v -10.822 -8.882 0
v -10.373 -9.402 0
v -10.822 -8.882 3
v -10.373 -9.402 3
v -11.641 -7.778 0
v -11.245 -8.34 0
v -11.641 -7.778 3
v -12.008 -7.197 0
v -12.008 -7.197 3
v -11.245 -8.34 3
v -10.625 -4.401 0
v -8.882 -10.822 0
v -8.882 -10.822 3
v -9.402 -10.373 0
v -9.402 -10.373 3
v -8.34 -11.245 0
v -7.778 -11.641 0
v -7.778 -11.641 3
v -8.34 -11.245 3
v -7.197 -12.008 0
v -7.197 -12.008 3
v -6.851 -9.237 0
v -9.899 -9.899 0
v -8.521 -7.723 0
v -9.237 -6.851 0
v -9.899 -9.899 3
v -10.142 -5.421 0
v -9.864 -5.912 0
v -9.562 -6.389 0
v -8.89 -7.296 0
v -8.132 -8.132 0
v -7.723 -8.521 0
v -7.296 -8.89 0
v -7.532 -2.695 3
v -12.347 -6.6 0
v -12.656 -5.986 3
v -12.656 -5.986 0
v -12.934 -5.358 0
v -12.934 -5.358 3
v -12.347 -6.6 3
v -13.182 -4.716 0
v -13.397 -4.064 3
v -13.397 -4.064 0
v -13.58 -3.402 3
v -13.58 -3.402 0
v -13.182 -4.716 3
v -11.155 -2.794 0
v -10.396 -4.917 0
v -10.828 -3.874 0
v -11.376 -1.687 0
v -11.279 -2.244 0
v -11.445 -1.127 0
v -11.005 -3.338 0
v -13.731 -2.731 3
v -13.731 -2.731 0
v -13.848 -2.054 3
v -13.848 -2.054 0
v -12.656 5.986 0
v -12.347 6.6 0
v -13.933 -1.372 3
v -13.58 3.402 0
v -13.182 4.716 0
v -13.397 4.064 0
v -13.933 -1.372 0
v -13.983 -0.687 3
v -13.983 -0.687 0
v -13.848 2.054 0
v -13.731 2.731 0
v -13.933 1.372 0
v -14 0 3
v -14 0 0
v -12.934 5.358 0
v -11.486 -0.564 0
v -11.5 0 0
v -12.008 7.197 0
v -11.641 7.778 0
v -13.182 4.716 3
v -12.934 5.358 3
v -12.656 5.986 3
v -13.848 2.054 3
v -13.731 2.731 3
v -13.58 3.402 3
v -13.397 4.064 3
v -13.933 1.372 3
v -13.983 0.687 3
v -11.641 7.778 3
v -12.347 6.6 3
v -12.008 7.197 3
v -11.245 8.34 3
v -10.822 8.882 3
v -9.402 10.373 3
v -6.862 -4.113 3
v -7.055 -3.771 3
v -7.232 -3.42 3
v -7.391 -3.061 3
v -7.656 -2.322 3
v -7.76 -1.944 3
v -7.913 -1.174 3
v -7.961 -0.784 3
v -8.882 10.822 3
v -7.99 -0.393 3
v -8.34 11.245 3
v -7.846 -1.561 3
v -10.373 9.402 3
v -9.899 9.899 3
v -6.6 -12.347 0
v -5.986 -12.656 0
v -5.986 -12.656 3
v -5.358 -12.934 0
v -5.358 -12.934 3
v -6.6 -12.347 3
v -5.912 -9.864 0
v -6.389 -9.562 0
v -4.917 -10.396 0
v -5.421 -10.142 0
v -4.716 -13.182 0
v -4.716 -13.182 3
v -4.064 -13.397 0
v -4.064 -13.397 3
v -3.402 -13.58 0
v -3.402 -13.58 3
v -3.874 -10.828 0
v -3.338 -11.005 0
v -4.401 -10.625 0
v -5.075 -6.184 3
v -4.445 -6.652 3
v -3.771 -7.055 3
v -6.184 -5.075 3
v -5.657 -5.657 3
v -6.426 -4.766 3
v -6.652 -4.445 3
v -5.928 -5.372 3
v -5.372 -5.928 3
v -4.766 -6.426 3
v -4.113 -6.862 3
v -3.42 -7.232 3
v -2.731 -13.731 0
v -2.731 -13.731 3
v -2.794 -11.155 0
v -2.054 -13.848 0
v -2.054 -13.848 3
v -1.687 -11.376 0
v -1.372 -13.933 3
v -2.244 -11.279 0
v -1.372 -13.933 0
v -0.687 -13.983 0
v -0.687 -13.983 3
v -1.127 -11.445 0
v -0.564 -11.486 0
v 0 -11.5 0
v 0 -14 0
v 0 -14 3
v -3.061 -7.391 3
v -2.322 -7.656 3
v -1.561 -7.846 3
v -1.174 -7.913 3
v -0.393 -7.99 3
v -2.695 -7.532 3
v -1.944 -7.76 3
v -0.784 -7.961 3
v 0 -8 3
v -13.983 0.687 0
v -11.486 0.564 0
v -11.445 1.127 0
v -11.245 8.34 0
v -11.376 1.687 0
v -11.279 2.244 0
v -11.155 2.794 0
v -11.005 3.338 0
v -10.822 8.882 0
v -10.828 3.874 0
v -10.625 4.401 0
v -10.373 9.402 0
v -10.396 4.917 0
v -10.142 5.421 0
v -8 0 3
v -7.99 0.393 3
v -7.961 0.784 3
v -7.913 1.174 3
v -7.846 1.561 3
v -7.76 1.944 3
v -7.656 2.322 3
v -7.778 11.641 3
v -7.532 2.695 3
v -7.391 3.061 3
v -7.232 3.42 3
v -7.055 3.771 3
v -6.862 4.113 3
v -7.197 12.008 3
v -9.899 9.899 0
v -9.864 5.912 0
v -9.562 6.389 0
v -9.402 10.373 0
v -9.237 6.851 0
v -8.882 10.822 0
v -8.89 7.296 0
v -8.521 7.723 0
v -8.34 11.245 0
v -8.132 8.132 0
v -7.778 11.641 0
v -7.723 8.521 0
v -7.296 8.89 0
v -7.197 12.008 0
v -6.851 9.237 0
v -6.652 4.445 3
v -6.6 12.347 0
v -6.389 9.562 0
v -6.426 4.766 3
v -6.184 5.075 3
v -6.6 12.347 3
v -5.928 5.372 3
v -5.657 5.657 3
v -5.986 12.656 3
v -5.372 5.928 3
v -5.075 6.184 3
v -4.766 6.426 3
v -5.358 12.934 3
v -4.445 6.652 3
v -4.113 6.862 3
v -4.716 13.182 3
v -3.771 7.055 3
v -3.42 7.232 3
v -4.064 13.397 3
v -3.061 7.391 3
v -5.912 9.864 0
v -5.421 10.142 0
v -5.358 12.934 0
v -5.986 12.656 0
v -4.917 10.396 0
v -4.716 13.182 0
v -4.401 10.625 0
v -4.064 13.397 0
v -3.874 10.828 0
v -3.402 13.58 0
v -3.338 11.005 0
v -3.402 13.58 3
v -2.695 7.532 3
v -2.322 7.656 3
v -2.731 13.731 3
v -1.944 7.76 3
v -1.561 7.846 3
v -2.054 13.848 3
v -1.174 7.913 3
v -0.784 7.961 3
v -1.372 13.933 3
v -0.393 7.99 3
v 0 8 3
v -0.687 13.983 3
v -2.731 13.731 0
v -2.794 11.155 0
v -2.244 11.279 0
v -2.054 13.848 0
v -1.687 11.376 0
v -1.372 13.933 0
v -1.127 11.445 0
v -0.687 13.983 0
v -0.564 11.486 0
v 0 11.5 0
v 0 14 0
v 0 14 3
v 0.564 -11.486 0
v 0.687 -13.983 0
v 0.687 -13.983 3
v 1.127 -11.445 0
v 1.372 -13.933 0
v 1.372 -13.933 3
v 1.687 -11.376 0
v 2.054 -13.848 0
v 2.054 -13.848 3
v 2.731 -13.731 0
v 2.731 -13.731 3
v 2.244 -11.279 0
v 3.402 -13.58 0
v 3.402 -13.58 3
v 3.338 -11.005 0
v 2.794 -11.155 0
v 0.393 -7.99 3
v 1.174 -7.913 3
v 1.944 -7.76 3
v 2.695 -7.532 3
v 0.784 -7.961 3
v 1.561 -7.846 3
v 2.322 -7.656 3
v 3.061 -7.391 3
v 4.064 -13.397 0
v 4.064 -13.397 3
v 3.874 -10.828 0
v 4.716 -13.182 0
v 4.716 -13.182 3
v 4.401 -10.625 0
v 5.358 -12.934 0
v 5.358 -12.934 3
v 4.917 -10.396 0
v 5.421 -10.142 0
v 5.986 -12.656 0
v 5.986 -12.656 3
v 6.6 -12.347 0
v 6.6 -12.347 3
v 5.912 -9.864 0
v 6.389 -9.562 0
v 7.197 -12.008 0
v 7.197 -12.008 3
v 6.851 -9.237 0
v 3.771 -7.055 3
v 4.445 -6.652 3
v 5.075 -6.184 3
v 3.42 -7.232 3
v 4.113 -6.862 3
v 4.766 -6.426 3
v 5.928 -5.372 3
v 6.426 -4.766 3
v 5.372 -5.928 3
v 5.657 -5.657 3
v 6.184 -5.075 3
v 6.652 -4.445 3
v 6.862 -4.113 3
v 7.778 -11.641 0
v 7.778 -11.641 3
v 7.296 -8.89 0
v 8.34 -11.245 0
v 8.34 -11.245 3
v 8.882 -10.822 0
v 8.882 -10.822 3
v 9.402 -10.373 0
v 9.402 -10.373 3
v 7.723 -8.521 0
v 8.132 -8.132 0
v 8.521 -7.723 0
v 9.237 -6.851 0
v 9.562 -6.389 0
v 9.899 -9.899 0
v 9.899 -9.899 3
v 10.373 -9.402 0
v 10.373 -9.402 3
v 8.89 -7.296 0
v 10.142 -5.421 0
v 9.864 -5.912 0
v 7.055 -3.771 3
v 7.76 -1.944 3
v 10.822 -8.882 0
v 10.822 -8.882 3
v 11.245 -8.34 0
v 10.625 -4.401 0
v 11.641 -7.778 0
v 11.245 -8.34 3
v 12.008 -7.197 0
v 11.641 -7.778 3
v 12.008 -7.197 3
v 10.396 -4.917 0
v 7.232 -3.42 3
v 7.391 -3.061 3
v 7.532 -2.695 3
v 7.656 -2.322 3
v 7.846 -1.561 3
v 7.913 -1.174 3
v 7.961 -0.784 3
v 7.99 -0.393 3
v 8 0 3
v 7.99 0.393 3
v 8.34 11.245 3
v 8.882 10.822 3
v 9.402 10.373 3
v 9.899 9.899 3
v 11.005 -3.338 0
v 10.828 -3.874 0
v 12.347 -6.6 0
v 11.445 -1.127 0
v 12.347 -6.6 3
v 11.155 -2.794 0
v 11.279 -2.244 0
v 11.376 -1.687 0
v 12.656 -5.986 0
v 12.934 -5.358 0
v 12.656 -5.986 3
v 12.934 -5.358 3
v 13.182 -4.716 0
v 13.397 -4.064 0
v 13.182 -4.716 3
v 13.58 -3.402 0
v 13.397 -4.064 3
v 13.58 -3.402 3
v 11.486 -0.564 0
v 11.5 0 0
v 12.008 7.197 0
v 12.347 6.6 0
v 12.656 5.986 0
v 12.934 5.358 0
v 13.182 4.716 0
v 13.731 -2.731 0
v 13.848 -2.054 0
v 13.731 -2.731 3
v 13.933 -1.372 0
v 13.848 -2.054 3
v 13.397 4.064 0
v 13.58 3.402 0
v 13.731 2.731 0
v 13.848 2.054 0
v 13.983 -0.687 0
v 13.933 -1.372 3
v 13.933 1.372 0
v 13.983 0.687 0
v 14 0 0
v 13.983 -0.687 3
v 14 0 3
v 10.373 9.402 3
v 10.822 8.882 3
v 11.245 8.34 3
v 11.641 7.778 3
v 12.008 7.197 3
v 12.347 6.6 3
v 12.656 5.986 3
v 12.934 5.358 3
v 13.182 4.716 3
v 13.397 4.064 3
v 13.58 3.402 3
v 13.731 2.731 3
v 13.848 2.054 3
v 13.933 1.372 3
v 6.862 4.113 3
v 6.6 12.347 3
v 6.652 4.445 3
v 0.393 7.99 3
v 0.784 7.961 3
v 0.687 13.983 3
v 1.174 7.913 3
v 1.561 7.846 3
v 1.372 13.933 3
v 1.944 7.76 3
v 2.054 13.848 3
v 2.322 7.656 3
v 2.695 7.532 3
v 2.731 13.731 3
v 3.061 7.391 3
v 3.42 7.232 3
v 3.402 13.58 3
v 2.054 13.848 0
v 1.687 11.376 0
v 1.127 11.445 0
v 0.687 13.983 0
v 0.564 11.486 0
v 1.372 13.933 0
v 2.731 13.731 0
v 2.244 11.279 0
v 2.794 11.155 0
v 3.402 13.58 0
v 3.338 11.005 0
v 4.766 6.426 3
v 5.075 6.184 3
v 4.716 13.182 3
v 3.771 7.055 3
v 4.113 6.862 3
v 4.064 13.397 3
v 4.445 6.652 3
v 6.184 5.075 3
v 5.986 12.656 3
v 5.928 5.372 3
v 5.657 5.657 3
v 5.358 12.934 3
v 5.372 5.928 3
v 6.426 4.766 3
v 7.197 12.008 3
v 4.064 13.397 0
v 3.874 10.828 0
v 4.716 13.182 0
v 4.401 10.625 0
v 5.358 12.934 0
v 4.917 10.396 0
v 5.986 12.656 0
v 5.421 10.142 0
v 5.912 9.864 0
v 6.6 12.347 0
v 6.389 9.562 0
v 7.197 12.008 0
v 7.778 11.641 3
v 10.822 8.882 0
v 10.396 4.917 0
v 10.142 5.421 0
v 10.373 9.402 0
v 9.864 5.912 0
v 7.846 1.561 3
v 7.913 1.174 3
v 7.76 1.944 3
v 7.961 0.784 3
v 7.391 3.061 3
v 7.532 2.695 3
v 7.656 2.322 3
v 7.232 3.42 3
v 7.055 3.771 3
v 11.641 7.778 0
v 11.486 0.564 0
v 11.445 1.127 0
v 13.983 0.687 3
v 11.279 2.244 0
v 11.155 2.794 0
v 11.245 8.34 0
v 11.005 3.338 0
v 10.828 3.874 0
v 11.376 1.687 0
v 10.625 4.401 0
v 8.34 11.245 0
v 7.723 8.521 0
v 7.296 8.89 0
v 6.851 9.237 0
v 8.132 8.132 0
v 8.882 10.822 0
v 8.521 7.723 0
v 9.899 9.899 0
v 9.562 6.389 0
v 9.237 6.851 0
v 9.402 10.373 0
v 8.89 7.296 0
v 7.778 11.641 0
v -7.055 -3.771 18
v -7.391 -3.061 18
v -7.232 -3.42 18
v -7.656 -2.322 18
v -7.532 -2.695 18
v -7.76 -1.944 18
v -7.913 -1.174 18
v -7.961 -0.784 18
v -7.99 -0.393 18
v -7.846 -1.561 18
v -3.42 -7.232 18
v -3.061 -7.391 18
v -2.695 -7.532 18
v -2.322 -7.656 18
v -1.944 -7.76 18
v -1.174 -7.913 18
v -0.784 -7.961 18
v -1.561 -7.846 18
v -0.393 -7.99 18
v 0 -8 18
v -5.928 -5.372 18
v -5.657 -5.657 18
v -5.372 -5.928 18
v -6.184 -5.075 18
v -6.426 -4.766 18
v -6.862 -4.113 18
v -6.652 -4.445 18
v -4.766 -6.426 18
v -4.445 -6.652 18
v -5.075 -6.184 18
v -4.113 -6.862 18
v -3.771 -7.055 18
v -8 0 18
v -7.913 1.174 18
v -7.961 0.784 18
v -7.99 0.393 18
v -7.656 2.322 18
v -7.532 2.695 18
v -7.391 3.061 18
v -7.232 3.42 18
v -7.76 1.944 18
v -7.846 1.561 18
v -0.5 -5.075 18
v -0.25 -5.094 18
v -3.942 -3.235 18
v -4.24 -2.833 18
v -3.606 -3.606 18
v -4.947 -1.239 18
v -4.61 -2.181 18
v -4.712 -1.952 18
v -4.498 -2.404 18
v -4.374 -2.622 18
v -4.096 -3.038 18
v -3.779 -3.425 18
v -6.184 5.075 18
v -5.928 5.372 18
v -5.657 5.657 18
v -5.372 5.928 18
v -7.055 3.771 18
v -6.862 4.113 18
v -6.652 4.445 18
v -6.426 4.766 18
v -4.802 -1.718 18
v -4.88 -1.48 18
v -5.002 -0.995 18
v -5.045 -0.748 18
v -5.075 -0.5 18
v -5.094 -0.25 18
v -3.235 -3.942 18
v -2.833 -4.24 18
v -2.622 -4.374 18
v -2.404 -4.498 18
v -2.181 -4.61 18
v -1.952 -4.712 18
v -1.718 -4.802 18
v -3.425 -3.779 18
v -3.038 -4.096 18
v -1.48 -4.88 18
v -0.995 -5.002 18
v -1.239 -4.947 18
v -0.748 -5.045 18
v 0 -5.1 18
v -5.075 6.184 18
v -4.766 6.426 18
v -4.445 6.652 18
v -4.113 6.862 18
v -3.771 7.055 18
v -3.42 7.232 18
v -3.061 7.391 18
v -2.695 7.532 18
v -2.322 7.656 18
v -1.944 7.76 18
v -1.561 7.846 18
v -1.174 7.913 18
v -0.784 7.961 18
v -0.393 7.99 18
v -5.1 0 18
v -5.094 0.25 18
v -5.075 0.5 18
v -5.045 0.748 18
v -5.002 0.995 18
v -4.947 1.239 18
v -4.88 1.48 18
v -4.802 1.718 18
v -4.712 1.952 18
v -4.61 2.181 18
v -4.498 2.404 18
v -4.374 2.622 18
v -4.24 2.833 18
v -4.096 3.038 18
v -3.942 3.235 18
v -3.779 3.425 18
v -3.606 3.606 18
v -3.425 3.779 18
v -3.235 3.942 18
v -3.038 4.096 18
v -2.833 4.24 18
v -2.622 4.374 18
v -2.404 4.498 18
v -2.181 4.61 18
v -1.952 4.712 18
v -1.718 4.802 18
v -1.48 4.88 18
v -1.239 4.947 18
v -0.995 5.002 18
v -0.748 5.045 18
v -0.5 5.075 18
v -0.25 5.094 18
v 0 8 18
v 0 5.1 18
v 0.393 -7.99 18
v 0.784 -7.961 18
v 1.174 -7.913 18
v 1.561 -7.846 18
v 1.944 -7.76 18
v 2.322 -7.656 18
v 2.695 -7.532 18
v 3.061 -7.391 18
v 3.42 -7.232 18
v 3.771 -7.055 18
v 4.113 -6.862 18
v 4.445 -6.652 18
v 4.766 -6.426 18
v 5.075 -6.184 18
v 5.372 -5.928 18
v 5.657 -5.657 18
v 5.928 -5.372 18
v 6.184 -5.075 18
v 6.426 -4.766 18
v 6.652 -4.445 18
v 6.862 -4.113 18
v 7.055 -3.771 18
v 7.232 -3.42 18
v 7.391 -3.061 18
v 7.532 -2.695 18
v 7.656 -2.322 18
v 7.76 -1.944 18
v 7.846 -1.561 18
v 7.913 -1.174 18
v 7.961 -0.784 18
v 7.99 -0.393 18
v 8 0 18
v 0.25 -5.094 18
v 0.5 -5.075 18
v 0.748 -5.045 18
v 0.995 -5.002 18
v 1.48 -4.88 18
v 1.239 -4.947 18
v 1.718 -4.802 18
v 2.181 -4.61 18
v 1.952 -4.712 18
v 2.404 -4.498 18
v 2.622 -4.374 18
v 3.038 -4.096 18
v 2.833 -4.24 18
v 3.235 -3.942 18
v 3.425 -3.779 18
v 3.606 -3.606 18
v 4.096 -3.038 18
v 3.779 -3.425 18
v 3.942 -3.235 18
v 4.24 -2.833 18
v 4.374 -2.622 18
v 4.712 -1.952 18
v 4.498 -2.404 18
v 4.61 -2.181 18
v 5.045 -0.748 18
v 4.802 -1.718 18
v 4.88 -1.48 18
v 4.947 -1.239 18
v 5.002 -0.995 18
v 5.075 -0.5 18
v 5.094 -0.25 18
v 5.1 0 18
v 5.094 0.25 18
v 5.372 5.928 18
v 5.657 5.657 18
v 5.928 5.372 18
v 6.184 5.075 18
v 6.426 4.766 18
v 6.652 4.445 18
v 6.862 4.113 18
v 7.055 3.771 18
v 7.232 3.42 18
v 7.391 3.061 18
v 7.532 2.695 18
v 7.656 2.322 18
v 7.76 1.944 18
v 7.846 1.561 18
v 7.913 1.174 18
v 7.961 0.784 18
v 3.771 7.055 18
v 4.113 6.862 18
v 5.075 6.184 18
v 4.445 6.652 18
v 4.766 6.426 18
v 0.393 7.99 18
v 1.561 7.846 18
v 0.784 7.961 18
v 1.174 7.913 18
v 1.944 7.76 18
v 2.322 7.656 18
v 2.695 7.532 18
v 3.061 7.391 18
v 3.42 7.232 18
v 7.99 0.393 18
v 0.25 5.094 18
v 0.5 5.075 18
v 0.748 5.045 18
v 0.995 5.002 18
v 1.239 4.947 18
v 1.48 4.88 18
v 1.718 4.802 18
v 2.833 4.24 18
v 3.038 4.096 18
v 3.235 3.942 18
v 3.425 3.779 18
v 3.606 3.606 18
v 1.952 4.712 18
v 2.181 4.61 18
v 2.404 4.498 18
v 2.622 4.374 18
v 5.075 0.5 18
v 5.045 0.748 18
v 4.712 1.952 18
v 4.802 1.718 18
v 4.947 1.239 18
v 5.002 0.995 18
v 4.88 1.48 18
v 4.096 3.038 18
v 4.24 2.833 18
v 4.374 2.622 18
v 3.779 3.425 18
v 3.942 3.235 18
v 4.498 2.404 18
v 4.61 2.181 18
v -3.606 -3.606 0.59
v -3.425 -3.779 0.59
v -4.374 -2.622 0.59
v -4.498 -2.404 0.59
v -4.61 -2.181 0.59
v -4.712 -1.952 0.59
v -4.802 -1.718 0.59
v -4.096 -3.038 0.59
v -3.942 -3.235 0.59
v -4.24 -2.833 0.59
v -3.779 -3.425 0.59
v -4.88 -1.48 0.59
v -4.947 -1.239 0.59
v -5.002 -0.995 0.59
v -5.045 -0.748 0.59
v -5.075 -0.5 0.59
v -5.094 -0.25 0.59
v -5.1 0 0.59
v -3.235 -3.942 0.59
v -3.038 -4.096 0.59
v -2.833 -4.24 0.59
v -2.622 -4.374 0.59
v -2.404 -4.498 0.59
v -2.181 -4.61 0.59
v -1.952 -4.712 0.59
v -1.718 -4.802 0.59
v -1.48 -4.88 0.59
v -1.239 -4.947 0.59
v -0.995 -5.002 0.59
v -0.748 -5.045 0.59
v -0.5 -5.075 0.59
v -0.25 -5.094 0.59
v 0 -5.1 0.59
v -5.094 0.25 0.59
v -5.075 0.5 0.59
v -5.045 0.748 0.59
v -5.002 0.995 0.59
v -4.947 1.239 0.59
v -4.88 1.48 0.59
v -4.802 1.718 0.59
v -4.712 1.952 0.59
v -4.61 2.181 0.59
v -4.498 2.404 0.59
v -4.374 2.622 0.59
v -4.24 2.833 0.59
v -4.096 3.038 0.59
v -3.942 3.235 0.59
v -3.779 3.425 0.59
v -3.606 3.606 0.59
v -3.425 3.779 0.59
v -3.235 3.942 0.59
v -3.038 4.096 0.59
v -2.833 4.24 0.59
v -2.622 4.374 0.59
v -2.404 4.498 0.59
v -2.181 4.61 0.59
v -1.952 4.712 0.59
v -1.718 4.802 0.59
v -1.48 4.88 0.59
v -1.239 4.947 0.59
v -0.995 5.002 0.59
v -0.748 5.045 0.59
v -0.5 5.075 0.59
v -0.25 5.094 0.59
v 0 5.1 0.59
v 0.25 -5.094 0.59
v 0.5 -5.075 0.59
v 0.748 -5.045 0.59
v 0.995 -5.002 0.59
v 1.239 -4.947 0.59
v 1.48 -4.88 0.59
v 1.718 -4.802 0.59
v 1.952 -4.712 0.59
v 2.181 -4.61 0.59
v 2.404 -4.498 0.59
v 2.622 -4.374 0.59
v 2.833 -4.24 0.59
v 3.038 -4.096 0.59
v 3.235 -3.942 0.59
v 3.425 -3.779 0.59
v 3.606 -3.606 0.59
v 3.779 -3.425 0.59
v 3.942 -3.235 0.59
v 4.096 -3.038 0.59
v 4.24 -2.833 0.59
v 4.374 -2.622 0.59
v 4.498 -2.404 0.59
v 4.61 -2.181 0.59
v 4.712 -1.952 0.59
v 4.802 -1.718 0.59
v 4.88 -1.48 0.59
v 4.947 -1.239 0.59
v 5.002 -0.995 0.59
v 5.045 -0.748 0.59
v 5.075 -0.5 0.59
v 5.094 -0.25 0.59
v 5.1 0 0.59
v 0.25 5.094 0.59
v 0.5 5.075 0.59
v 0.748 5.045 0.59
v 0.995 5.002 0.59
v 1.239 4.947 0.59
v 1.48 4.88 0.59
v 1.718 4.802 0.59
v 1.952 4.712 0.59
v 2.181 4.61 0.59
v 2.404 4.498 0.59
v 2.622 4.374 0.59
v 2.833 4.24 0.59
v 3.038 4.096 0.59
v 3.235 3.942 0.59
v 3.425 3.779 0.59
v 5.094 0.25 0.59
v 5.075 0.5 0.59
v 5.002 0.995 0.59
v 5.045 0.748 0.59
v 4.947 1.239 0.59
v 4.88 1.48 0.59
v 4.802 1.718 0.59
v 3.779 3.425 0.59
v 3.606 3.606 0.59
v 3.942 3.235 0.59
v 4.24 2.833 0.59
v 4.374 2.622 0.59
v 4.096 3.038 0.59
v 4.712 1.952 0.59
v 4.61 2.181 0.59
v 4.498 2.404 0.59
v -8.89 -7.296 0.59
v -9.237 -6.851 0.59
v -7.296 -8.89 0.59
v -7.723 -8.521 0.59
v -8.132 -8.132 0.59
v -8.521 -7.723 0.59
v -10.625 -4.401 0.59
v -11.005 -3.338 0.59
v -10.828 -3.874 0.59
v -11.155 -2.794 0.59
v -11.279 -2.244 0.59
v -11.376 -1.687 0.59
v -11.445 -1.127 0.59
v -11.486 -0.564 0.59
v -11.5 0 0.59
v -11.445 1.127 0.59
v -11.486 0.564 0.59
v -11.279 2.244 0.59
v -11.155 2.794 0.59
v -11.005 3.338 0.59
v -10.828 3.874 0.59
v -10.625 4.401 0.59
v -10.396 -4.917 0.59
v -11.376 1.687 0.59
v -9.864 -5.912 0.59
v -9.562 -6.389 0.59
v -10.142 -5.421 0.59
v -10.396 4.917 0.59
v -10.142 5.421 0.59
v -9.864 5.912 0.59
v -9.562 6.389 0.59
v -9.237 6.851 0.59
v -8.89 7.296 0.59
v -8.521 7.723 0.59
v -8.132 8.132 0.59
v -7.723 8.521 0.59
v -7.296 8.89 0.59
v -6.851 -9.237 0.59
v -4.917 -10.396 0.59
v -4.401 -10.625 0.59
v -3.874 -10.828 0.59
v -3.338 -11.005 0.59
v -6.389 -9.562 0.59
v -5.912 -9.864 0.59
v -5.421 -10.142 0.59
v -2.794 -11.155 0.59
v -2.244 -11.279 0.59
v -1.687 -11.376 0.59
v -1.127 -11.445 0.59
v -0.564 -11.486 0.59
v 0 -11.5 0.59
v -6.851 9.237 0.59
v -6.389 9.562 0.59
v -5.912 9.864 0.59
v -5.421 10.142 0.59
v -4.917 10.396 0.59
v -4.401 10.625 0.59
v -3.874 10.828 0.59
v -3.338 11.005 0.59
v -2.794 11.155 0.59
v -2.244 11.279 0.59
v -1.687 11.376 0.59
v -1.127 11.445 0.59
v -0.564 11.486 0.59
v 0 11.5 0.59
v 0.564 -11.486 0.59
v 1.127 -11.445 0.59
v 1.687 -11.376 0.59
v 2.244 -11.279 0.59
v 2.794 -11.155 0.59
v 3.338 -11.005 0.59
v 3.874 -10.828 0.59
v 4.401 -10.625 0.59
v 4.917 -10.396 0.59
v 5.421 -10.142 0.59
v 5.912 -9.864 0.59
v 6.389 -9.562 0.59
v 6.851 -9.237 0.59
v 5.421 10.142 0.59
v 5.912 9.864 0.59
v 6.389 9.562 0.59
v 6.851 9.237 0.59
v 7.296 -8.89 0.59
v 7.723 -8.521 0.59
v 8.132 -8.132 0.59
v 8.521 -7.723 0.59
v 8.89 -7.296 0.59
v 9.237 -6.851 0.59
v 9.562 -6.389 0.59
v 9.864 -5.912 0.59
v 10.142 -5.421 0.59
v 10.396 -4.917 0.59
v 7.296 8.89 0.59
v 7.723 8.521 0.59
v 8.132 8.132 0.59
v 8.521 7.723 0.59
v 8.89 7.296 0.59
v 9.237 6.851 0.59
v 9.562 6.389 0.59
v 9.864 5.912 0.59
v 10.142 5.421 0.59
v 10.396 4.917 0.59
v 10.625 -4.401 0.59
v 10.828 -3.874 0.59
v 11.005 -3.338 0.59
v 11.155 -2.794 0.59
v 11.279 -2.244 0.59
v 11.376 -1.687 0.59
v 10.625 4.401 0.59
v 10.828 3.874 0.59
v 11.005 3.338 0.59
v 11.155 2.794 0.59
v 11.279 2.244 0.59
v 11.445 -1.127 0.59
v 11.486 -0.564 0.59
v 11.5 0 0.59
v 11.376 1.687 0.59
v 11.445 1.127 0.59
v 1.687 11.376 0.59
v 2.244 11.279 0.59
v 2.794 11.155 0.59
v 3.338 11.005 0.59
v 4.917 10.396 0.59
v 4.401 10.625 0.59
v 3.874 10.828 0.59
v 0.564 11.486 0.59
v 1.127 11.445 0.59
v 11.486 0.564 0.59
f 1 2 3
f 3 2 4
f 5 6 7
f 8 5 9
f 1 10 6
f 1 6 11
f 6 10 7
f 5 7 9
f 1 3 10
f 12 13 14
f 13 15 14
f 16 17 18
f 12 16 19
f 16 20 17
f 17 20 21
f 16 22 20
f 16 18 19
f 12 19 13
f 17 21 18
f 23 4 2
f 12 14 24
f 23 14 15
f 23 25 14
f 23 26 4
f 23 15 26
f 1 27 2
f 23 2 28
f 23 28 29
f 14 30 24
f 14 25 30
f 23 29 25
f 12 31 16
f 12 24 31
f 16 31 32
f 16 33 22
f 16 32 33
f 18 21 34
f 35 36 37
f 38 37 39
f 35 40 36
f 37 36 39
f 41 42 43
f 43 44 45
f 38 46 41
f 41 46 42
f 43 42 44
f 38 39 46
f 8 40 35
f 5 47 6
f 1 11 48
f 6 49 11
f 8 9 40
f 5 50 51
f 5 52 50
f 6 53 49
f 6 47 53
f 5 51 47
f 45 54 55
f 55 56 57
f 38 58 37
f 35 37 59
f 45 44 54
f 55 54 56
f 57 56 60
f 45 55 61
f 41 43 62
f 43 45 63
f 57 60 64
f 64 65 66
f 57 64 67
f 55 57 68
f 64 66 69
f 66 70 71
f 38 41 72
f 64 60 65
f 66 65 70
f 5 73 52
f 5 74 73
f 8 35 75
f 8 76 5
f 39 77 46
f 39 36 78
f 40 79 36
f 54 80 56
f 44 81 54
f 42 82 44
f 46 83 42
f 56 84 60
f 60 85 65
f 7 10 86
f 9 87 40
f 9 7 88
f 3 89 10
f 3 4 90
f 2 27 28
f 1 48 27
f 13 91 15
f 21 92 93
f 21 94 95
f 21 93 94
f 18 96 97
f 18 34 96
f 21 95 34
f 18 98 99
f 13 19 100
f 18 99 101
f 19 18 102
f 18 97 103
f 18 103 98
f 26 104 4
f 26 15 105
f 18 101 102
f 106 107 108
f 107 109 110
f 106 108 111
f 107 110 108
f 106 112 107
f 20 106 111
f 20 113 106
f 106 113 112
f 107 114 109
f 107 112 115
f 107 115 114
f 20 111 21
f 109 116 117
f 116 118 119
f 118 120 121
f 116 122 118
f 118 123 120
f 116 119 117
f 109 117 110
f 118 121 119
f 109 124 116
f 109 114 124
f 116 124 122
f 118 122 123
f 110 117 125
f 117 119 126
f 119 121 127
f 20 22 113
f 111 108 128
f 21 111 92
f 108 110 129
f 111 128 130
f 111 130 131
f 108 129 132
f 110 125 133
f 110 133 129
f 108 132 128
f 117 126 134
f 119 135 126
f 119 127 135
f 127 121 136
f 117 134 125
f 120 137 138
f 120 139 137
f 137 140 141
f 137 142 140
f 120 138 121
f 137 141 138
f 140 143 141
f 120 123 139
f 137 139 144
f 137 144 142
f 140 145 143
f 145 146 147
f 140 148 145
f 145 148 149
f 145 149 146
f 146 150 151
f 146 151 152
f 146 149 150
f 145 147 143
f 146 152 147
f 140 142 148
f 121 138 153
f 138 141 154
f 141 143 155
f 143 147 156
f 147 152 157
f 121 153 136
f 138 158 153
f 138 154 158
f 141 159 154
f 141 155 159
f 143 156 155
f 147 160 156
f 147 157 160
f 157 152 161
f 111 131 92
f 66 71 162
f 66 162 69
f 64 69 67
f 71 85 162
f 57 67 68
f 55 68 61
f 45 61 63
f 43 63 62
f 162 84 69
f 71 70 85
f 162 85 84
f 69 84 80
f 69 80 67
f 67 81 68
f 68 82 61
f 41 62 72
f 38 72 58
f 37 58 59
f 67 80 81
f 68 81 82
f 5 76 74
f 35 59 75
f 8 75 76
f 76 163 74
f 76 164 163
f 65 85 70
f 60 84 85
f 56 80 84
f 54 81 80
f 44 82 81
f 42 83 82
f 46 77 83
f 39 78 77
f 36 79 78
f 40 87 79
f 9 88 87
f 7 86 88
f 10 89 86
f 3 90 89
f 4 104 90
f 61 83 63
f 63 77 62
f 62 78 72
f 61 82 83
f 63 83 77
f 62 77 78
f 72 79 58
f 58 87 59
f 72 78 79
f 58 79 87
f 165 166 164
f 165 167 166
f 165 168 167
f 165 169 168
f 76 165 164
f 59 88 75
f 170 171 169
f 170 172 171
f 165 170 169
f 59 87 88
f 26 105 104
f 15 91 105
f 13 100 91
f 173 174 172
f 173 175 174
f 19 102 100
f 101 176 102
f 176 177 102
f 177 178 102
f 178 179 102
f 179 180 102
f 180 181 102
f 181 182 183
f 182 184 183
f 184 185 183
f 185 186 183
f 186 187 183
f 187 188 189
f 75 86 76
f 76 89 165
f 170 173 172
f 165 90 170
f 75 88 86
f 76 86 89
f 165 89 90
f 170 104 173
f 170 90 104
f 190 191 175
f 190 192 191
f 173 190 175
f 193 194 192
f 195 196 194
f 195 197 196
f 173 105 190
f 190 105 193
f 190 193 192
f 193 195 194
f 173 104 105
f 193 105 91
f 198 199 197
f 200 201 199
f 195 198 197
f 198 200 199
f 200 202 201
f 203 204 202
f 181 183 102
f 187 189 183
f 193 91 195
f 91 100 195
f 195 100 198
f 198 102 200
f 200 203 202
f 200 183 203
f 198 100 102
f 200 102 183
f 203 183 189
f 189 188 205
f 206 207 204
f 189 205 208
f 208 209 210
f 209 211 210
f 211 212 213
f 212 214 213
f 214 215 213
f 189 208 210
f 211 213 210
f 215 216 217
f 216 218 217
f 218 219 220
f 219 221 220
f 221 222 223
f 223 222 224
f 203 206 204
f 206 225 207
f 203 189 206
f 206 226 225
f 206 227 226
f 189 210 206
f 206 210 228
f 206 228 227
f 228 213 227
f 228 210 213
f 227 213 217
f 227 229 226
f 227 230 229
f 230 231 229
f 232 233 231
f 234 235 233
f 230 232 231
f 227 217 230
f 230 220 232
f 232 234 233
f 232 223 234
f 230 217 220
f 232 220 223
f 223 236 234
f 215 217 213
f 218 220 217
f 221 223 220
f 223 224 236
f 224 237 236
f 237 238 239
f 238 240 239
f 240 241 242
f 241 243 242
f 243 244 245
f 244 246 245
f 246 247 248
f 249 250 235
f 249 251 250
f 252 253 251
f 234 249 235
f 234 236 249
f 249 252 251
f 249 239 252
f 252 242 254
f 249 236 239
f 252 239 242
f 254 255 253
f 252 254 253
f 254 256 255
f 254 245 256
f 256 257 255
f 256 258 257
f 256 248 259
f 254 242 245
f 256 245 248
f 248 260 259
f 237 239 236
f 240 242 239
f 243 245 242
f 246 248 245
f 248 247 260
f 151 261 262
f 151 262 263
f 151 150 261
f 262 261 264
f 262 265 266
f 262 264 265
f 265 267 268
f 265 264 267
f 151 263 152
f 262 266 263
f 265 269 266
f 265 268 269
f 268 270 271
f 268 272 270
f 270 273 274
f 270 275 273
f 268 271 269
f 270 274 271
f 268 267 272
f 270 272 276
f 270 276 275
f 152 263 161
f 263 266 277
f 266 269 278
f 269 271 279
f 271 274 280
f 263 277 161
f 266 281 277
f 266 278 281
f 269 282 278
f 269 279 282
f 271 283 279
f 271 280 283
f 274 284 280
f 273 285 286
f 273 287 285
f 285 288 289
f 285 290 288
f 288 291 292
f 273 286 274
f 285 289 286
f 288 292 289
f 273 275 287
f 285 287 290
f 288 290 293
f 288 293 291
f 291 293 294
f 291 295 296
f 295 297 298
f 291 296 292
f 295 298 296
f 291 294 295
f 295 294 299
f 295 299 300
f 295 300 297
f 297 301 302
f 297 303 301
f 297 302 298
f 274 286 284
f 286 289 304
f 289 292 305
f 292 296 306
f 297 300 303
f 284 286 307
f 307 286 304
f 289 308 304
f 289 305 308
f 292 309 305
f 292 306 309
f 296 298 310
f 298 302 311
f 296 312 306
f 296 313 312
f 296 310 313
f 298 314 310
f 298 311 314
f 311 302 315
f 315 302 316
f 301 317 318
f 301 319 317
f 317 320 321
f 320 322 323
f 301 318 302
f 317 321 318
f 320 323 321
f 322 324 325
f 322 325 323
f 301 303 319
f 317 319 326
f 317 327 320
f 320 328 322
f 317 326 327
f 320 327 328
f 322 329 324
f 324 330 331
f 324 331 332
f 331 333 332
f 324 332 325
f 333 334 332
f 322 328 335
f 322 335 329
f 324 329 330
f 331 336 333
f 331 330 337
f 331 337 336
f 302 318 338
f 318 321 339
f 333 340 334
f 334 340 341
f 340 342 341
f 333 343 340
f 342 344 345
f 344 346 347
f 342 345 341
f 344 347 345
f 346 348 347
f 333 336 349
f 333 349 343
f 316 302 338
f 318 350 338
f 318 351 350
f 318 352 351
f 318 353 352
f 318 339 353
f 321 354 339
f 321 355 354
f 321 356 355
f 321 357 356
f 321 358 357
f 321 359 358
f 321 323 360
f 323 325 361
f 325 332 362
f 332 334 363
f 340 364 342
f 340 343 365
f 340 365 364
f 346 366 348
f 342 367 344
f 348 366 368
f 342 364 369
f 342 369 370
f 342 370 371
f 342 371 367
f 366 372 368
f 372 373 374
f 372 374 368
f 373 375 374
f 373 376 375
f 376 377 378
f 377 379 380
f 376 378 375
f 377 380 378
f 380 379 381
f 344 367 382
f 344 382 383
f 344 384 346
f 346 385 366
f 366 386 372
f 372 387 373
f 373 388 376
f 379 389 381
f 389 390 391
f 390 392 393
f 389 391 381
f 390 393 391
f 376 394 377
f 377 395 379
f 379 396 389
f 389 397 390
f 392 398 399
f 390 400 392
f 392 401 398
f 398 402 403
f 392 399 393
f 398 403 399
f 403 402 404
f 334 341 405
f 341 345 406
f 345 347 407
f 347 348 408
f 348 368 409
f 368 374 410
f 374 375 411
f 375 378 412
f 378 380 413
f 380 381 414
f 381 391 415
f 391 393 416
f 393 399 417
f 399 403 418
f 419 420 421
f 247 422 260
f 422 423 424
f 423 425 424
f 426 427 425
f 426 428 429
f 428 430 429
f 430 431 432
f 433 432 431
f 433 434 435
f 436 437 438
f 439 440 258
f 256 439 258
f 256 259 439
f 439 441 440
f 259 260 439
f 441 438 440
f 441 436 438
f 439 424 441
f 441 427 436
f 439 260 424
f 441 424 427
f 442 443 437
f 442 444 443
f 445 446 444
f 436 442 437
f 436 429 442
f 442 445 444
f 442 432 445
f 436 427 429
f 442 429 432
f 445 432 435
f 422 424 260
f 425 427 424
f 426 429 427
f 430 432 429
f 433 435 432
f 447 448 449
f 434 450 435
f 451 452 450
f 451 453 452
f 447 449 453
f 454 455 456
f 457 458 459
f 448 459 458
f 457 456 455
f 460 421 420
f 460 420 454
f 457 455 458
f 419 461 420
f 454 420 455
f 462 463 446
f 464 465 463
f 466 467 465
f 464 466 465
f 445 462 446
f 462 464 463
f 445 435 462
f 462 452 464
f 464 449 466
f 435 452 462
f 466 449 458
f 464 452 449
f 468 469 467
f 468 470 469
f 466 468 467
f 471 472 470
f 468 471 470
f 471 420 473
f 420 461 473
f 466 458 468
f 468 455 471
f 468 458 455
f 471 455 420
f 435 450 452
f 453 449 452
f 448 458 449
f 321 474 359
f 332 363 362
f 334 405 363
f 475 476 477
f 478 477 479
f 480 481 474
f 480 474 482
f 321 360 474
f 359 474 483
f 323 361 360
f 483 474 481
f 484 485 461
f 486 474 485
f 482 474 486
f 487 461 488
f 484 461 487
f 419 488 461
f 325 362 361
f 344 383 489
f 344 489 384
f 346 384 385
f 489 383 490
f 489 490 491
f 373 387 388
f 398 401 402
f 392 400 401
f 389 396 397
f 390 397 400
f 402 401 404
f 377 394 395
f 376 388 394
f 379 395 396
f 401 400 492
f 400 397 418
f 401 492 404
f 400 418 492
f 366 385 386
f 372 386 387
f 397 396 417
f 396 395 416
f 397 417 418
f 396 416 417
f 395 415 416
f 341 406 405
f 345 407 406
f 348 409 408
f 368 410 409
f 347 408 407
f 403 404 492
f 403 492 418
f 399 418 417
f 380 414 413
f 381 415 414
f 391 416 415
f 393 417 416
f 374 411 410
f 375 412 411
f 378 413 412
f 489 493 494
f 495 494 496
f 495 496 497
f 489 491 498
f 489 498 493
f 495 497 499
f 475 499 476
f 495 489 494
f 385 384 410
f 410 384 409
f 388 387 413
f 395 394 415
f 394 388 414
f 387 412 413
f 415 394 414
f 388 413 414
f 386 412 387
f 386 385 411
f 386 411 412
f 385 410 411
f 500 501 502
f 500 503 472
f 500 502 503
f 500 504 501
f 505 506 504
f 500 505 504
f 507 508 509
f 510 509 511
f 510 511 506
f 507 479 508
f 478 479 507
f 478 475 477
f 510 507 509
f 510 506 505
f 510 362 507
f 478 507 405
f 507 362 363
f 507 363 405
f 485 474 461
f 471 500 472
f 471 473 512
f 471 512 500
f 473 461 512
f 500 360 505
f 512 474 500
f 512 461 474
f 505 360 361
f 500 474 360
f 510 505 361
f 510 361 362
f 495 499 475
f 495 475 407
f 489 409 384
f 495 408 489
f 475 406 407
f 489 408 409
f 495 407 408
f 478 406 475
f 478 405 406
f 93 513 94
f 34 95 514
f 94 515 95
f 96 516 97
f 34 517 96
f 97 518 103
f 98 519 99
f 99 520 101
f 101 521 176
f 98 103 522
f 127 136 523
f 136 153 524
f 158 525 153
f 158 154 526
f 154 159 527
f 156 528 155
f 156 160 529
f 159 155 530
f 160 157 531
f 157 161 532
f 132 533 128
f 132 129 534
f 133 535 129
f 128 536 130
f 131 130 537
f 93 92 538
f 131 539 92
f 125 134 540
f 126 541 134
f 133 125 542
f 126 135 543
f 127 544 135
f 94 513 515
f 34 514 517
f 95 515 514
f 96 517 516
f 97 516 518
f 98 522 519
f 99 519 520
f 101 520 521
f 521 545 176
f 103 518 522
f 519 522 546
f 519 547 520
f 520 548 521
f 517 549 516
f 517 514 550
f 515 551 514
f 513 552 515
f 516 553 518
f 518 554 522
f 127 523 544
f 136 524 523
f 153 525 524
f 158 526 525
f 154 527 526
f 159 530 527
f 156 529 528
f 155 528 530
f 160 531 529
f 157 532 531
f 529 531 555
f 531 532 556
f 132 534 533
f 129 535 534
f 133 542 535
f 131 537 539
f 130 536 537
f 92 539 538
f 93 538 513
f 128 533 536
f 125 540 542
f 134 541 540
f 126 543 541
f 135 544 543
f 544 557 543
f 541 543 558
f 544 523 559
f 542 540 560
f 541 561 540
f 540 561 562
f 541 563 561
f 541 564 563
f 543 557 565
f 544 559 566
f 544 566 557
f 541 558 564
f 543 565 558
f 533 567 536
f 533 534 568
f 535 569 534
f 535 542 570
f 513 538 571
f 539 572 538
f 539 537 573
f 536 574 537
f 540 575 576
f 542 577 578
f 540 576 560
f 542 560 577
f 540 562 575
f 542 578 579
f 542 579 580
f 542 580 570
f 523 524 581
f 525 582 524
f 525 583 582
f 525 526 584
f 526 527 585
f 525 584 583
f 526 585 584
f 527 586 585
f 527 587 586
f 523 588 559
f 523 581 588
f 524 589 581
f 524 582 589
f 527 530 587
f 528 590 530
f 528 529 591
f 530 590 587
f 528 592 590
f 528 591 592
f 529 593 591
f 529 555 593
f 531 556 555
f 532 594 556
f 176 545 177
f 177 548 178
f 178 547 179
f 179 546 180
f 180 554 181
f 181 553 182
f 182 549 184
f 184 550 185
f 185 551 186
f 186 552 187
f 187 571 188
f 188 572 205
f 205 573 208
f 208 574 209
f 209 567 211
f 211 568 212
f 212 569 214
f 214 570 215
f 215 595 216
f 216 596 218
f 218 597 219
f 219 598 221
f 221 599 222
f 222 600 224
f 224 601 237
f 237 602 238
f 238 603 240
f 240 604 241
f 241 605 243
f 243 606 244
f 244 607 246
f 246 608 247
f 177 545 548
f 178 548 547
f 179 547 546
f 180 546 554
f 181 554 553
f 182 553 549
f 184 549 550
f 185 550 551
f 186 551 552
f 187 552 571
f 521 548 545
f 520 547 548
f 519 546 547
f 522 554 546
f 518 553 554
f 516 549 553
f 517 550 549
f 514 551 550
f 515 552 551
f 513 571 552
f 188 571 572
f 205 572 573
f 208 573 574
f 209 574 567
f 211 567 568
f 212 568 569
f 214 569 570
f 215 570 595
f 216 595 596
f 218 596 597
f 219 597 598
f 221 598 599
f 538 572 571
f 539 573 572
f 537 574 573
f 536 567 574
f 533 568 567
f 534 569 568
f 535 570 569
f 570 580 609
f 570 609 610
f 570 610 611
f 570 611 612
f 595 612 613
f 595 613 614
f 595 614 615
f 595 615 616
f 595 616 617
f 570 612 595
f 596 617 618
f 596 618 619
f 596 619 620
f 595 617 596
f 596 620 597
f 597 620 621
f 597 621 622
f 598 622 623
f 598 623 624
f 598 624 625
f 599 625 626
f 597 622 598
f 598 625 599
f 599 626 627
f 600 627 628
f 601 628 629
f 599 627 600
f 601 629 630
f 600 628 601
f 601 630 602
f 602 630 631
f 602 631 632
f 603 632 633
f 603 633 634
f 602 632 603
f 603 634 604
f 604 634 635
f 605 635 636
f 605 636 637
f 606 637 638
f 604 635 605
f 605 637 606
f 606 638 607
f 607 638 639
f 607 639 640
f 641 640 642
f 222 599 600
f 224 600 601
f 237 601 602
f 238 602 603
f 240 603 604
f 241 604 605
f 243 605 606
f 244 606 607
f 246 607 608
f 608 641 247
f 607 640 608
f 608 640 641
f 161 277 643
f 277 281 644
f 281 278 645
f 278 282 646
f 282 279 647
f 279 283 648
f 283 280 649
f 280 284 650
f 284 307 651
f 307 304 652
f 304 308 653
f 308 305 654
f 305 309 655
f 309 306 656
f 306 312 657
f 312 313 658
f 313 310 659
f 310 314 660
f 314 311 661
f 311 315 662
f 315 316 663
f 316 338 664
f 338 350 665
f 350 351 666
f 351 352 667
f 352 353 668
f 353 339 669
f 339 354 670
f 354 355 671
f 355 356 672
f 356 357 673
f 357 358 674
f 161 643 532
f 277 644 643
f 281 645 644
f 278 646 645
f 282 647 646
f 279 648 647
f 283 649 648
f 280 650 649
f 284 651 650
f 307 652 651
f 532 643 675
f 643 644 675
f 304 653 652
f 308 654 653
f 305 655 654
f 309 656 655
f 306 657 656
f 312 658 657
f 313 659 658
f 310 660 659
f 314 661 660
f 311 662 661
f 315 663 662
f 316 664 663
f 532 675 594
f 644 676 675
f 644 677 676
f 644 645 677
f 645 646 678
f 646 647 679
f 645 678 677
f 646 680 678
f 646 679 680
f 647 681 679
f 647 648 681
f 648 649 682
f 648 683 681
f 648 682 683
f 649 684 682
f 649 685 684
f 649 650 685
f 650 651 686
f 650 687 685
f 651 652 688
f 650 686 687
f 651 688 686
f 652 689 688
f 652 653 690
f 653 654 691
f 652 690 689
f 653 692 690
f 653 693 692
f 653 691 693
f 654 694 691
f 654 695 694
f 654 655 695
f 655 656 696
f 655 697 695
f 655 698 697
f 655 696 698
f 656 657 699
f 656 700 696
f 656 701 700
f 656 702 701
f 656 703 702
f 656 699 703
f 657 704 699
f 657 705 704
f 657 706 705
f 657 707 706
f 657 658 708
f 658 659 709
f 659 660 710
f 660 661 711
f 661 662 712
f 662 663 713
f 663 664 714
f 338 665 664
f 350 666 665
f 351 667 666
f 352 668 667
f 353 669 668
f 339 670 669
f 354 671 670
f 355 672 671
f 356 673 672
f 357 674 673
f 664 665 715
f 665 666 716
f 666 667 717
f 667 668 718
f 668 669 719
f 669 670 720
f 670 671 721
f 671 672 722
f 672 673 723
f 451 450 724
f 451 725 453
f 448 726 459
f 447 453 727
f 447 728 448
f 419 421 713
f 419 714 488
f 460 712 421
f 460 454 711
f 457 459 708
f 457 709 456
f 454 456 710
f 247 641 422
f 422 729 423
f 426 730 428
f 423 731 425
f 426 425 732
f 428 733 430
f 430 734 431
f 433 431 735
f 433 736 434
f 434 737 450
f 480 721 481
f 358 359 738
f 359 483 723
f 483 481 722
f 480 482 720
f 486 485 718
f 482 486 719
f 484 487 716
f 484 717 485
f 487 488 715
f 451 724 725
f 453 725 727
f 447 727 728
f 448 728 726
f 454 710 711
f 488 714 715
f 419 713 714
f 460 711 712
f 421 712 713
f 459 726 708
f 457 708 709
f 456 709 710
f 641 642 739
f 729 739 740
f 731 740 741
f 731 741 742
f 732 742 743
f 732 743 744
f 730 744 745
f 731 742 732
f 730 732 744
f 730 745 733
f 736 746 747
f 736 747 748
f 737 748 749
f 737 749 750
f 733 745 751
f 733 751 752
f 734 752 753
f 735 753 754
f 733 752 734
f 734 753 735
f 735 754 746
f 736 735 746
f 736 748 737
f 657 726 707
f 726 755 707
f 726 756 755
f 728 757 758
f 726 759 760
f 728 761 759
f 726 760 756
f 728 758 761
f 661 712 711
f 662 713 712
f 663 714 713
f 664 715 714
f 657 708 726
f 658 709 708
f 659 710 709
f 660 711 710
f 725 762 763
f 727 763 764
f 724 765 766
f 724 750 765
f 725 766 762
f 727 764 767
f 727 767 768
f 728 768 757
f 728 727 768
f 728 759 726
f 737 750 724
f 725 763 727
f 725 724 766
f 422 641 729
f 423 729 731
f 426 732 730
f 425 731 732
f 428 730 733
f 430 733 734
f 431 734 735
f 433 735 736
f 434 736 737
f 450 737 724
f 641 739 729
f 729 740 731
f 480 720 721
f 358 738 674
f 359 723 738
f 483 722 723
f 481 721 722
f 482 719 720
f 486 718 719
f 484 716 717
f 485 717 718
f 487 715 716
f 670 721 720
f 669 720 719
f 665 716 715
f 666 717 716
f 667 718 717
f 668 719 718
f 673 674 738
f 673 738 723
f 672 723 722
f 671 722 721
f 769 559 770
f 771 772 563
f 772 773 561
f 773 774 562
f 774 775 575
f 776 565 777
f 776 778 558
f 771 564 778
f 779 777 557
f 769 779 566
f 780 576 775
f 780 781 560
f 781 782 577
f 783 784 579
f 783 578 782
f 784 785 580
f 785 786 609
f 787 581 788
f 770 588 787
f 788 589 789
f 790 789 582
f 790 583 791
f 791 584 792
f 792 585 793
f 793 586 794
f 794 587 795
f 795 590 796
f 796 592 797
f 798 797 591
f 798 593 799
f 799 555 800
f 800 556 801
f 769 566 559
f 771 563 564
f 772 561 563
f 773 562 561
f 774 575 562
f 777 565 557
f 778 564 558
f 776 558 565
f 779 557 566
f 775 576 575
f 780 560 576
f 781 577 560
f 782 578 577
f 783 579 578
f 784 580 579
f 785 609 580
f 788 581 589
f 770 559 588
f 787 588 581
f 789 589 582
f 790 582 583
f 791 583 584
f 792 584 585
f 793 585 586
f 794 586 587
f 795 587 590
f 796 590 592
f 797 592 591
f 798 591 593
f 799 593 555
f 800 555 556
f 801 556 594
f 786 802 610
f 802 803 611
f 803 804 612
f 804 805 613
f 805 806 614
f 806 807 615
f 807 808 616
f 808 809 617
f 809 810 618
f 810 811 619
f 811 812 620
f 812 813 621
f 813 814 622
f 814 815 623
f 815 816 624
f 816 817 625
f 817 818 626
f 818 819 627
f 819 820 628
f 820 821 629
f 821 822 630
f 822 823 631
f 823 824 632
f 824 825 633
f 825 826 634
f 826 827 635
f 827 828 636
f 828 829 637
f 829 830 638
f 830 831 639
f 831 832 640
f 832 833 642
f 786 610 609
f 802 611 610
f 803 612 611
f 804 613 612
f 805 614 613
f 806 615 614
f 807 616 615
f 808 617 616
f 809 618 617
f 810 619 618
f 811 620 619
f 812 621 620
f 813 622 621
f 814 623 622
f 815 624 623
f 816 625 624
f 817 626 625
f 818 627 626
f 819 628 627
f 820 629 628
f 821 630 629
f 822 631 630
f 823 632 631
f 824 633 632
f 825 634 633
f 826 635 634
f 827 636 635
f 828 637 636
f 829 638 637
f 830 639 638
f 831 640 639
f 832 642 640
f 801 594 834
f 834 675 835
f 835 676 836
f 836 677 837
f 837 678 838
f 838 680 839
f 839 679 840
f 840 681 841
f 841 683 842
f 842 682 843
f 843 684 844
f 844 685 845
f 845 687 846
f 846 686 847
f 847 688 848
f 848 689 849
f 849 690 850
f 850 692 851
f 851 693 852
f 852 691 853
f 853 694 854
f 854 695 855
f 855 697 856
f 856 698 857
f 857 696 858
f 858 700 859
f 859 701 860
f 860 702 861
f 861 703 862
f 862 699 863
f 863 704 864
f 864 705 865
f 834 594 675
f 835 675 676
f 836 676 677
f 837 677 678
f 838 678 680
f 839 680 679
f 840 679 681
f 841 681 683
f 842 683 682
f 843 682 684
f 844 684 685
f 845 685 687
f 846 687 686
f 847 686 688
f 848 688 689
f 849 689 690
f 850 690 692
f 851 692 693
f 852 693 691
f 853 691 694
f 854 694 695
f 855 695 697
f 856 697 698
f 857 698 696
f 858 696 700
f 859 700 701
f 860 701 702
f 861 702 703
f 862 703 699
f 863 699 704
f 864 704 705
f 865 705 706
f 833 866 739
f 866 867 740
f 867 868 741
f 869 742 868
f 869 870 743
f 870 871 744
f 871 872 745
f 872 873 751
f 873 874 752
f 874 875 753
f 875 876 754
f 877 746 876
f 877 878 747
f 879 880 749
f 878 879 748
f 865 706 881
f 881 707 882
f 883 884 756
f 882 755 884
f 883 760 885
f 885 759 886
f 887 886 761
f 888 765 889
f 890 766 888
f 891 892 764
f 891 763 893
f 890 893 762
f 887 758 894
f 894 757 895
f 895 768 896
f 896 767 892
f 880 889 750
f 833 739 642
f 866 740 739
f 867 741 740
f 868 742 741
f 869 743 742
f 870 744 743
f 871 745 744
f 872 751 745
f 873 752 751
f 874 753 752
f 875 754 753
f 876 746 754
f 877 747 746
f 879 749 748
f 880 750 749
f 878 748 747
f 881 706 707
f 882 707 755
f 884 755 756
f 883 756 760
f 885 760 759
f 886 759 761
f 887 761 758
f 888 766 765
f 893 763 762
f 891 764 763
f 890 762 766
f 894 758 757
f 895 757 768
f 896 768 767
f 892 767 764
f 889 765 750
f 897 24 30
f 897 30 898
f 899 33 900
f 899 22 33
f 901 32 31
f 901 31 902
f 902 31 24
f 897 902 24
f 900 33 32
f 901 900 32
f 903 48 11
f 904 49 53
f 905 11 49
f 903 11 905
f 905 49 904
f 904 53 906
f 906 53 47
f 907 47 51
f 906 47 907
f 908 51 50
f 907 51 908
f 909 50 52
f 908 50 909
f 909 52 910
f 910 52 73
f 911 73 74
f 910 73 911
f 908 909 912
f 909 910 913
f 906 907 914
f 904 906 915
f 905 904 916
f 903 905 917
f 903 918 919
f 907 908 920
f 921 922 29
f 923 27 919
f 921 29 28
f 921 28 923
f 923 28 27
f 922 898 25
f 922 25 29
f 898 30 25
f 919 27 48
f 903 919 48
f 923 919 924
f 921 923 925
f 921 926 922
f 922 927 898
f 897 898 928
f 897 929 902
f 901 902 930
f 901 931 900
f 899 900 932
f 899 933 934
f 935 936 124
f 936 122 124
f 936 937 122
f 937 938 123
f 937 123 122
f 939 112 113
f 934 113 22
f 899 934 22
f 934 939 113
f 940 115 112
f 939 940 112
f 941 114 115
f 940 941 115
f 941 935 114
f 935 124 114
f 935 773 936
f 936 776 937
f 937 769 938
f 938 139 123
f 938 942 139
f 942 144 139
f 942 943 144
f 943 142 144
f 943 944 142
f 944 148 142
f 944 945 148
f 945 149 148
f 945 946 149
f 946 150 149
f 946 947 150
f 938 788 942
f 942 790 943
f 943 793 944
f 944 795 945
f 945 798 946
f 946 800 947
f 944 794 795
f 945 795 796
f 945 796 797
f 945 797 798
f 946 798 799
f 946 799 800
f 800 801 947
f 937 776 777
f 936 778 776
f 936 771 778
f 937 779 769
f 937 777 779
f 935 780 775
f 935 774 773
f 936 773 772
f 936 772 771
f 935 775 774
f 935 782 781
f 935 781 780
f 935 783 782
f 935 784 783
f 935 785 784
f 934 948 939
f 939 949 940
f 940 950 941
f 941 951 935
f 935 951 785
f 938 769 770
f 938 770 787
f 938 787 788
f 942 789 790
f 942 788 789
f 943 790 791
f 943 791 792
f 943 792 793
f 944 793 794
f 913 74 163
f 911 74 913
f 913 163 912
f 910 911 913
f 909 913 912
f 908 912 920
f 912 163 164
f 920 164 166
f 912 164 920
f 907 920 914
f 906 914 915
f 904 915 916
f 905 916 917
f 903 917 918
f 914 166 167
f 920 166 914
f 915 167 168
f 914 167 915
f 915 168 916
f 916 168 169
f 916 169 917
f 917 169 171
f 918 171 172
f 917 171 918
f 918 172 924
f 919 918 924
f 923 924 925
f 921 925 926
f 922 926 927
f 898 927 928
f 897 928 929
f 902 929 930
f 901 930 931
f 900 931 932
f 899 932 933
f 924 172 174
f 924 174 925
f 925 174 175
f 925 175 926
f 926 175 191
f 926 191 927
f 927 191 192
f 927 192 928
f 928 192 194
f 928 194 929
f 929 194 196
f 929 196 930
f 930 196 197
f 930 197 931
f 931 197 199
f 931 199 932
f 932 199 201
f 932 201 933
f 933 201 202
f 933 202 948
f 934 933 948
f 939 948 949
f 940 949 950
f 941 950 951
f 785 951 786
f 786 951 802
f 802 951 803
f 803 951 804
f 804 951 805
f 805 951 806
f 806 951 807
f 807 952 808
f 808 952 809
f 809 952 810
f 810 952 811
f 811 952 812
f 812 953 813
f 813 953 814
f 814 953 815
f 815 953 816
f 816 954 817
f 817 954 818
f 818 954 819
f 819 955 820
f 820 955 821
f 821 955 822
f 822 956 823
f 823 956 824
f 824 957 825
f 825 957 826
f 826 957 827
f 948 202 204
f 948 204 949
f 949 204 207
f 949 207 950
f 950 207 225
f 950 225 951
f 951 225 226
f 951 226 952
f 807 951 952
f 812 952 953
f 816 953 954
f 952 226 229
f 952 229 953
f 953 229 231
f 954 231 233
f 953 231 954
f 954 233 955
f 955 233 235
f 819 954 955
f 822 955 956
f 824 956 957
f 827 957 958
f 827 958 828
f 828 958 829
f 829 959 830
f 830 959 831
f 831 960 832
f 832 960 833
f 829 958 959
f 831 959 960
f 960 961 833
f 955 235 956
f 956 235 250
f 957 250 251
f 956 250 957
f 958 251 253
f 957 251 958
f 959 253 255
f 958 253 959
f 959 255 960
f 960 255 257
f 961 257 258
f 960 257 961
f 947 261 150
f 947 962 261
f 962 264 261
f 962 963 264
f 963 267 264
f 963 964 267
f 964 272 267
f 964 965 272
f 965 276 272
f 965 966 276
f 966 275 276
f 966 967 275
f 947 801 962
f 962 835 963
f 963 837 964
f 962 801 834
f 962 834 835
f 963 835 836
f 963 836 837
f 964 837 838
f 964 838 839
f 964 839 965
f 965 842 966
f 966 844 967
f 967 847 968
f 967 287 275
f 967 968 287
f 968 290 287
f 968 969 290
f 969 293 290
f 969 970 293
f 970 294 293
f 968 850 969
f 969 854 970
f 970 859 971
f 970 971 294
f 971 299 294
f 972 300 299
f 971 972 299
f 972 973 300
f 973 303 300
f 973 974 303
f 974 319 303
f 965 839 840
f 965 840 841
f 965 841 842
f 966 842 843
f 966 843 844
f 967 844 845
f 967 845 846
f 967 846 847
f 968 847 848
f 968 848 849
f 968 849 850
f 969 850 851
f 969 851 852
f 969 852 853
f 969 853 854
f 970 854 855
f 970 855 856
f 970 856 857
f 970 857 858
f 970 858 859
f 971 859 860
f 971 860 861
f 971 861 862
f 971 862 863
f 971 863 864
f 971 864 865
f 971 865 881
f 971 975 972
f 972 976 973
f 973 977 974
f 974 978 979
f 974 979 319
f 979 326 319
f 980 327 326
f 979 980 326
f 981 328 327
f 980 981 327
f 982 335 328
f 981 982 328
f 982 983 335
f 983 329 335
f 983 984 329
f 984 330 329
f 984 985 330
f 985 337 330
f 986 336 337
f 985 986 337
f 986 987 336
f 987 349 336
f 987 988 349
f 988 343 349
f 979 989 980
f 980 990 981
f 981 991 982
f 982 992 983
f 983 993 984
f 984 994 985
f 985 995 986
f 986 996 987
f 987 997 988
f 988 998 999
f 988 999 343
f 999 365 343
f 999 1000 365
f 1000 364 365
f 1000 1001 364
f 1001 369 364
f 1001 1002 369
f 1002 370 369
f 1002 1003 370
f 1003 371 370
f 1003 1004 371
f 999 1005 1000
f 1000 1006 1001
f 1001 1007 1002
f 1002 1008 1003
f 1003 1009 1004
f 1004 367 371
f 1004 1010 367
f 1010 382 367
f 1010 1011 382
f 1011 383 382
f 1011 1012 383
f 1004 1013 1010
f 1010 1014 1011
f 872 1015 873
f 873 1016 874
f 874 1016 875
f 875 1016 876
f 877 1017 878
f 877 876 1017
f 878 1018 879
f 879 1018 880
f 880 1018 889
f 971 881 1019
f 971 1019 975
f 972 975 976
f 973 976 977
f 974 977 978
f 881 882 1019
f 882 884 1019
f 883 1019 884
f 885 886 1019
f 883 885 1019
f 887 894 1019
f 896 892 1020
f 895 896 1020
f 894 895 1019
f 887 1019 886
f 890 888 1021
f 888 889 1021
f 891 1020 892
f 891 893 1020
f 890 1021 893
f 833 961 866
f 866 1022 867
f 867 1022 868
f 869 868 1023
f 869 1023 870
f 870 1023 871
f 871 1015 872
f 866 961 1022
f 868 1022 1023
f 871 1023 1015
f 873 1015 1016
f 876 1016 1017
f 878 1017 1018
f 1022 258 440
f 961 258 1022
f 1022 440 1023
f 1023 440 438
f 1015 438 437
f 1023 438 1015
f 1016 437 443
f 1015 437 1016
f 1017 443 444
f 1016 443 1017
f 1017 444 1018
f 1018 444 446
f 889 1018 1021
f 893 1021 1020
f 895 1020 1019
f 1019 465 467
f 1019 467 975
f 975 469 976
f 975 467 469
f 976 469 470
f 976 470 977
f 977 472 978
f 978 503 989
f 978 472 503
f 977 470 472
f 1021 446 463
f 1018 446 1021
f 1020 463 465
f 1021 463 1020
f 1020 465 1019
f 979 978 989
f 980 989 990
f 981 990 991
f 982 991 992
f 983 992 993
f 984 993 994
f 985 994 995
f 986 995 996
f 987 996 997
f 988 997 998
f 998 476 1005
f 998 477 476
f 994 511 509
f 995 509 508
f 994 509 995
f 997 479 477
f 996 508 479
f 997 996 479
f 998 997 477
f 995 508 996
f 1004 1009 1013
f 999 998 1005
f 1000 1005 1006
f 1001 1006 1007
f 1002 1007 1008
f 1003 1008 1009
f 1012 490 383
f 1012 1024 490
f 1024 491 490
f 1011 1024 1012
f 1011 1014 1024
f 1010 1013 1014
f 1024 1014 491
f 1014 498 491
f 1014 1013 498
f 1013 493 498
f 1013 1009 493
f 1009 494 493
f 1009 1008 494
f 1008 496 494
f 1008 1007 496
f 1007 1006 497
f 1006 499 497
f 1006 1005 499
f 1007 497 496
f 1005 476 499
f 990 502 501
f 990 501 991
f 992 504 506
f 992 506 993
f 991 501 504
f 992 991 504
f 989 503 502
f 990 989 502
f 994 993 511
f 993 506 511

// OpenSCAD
// dropout_gauge_001.scad
// Dropout alignment gauge cup — print 2 (PETG, 100% infill, face down).
//
// Poor-man's Park FFG-2: fix a short M10 threaded-rod stub in each dropout
// with nuts, slide a cup onto each stub face-inward, bring the cups
// together in the middle and read the gap:
//   - even hairline gap all around, rims concentric  -> dropouts aligned
//   - wedge-shaped gap        -> faces not parallel (toed in/out)
//   - rims offset             -> dropouts not on a common axis
//
// The reading face is a narrow raised rim (not the full disc) so the gap
// is crisp and bed-flat. Print face down on a smooth sheet. The long bore
// rides the rod threads; if it binds, bump `bore` by 0.1.

$fn = 128;

bore     = 10.2;  // snug over M10 thread crests (~9.9)
face_od  = 28;    // rim outer diameter
rim_w    = 2.5;   // reading-rim width
face_t   = 3;     // face disc thickness
relief   = 0.6;   // face recess inside the rim
body_d   = 16;    // barrel around the bore
body_l   = 15;    // barrel length behind the face (steadies the cup)

difference() {
    union() {
        cylinder(d=face_od, h=face_t);
        cylinder(d=body_d, h=face_t + body_l);
    }

    // bore
    translate([0, 0, -1]) cylinder(d=bore, h=face_t + body_l + 2);

    // face relief: only the outer rim contacts/reads
    translate([0, 0, -0.01])
        cylinder(d=face_od - 2*rim_w, h=relief);
}
